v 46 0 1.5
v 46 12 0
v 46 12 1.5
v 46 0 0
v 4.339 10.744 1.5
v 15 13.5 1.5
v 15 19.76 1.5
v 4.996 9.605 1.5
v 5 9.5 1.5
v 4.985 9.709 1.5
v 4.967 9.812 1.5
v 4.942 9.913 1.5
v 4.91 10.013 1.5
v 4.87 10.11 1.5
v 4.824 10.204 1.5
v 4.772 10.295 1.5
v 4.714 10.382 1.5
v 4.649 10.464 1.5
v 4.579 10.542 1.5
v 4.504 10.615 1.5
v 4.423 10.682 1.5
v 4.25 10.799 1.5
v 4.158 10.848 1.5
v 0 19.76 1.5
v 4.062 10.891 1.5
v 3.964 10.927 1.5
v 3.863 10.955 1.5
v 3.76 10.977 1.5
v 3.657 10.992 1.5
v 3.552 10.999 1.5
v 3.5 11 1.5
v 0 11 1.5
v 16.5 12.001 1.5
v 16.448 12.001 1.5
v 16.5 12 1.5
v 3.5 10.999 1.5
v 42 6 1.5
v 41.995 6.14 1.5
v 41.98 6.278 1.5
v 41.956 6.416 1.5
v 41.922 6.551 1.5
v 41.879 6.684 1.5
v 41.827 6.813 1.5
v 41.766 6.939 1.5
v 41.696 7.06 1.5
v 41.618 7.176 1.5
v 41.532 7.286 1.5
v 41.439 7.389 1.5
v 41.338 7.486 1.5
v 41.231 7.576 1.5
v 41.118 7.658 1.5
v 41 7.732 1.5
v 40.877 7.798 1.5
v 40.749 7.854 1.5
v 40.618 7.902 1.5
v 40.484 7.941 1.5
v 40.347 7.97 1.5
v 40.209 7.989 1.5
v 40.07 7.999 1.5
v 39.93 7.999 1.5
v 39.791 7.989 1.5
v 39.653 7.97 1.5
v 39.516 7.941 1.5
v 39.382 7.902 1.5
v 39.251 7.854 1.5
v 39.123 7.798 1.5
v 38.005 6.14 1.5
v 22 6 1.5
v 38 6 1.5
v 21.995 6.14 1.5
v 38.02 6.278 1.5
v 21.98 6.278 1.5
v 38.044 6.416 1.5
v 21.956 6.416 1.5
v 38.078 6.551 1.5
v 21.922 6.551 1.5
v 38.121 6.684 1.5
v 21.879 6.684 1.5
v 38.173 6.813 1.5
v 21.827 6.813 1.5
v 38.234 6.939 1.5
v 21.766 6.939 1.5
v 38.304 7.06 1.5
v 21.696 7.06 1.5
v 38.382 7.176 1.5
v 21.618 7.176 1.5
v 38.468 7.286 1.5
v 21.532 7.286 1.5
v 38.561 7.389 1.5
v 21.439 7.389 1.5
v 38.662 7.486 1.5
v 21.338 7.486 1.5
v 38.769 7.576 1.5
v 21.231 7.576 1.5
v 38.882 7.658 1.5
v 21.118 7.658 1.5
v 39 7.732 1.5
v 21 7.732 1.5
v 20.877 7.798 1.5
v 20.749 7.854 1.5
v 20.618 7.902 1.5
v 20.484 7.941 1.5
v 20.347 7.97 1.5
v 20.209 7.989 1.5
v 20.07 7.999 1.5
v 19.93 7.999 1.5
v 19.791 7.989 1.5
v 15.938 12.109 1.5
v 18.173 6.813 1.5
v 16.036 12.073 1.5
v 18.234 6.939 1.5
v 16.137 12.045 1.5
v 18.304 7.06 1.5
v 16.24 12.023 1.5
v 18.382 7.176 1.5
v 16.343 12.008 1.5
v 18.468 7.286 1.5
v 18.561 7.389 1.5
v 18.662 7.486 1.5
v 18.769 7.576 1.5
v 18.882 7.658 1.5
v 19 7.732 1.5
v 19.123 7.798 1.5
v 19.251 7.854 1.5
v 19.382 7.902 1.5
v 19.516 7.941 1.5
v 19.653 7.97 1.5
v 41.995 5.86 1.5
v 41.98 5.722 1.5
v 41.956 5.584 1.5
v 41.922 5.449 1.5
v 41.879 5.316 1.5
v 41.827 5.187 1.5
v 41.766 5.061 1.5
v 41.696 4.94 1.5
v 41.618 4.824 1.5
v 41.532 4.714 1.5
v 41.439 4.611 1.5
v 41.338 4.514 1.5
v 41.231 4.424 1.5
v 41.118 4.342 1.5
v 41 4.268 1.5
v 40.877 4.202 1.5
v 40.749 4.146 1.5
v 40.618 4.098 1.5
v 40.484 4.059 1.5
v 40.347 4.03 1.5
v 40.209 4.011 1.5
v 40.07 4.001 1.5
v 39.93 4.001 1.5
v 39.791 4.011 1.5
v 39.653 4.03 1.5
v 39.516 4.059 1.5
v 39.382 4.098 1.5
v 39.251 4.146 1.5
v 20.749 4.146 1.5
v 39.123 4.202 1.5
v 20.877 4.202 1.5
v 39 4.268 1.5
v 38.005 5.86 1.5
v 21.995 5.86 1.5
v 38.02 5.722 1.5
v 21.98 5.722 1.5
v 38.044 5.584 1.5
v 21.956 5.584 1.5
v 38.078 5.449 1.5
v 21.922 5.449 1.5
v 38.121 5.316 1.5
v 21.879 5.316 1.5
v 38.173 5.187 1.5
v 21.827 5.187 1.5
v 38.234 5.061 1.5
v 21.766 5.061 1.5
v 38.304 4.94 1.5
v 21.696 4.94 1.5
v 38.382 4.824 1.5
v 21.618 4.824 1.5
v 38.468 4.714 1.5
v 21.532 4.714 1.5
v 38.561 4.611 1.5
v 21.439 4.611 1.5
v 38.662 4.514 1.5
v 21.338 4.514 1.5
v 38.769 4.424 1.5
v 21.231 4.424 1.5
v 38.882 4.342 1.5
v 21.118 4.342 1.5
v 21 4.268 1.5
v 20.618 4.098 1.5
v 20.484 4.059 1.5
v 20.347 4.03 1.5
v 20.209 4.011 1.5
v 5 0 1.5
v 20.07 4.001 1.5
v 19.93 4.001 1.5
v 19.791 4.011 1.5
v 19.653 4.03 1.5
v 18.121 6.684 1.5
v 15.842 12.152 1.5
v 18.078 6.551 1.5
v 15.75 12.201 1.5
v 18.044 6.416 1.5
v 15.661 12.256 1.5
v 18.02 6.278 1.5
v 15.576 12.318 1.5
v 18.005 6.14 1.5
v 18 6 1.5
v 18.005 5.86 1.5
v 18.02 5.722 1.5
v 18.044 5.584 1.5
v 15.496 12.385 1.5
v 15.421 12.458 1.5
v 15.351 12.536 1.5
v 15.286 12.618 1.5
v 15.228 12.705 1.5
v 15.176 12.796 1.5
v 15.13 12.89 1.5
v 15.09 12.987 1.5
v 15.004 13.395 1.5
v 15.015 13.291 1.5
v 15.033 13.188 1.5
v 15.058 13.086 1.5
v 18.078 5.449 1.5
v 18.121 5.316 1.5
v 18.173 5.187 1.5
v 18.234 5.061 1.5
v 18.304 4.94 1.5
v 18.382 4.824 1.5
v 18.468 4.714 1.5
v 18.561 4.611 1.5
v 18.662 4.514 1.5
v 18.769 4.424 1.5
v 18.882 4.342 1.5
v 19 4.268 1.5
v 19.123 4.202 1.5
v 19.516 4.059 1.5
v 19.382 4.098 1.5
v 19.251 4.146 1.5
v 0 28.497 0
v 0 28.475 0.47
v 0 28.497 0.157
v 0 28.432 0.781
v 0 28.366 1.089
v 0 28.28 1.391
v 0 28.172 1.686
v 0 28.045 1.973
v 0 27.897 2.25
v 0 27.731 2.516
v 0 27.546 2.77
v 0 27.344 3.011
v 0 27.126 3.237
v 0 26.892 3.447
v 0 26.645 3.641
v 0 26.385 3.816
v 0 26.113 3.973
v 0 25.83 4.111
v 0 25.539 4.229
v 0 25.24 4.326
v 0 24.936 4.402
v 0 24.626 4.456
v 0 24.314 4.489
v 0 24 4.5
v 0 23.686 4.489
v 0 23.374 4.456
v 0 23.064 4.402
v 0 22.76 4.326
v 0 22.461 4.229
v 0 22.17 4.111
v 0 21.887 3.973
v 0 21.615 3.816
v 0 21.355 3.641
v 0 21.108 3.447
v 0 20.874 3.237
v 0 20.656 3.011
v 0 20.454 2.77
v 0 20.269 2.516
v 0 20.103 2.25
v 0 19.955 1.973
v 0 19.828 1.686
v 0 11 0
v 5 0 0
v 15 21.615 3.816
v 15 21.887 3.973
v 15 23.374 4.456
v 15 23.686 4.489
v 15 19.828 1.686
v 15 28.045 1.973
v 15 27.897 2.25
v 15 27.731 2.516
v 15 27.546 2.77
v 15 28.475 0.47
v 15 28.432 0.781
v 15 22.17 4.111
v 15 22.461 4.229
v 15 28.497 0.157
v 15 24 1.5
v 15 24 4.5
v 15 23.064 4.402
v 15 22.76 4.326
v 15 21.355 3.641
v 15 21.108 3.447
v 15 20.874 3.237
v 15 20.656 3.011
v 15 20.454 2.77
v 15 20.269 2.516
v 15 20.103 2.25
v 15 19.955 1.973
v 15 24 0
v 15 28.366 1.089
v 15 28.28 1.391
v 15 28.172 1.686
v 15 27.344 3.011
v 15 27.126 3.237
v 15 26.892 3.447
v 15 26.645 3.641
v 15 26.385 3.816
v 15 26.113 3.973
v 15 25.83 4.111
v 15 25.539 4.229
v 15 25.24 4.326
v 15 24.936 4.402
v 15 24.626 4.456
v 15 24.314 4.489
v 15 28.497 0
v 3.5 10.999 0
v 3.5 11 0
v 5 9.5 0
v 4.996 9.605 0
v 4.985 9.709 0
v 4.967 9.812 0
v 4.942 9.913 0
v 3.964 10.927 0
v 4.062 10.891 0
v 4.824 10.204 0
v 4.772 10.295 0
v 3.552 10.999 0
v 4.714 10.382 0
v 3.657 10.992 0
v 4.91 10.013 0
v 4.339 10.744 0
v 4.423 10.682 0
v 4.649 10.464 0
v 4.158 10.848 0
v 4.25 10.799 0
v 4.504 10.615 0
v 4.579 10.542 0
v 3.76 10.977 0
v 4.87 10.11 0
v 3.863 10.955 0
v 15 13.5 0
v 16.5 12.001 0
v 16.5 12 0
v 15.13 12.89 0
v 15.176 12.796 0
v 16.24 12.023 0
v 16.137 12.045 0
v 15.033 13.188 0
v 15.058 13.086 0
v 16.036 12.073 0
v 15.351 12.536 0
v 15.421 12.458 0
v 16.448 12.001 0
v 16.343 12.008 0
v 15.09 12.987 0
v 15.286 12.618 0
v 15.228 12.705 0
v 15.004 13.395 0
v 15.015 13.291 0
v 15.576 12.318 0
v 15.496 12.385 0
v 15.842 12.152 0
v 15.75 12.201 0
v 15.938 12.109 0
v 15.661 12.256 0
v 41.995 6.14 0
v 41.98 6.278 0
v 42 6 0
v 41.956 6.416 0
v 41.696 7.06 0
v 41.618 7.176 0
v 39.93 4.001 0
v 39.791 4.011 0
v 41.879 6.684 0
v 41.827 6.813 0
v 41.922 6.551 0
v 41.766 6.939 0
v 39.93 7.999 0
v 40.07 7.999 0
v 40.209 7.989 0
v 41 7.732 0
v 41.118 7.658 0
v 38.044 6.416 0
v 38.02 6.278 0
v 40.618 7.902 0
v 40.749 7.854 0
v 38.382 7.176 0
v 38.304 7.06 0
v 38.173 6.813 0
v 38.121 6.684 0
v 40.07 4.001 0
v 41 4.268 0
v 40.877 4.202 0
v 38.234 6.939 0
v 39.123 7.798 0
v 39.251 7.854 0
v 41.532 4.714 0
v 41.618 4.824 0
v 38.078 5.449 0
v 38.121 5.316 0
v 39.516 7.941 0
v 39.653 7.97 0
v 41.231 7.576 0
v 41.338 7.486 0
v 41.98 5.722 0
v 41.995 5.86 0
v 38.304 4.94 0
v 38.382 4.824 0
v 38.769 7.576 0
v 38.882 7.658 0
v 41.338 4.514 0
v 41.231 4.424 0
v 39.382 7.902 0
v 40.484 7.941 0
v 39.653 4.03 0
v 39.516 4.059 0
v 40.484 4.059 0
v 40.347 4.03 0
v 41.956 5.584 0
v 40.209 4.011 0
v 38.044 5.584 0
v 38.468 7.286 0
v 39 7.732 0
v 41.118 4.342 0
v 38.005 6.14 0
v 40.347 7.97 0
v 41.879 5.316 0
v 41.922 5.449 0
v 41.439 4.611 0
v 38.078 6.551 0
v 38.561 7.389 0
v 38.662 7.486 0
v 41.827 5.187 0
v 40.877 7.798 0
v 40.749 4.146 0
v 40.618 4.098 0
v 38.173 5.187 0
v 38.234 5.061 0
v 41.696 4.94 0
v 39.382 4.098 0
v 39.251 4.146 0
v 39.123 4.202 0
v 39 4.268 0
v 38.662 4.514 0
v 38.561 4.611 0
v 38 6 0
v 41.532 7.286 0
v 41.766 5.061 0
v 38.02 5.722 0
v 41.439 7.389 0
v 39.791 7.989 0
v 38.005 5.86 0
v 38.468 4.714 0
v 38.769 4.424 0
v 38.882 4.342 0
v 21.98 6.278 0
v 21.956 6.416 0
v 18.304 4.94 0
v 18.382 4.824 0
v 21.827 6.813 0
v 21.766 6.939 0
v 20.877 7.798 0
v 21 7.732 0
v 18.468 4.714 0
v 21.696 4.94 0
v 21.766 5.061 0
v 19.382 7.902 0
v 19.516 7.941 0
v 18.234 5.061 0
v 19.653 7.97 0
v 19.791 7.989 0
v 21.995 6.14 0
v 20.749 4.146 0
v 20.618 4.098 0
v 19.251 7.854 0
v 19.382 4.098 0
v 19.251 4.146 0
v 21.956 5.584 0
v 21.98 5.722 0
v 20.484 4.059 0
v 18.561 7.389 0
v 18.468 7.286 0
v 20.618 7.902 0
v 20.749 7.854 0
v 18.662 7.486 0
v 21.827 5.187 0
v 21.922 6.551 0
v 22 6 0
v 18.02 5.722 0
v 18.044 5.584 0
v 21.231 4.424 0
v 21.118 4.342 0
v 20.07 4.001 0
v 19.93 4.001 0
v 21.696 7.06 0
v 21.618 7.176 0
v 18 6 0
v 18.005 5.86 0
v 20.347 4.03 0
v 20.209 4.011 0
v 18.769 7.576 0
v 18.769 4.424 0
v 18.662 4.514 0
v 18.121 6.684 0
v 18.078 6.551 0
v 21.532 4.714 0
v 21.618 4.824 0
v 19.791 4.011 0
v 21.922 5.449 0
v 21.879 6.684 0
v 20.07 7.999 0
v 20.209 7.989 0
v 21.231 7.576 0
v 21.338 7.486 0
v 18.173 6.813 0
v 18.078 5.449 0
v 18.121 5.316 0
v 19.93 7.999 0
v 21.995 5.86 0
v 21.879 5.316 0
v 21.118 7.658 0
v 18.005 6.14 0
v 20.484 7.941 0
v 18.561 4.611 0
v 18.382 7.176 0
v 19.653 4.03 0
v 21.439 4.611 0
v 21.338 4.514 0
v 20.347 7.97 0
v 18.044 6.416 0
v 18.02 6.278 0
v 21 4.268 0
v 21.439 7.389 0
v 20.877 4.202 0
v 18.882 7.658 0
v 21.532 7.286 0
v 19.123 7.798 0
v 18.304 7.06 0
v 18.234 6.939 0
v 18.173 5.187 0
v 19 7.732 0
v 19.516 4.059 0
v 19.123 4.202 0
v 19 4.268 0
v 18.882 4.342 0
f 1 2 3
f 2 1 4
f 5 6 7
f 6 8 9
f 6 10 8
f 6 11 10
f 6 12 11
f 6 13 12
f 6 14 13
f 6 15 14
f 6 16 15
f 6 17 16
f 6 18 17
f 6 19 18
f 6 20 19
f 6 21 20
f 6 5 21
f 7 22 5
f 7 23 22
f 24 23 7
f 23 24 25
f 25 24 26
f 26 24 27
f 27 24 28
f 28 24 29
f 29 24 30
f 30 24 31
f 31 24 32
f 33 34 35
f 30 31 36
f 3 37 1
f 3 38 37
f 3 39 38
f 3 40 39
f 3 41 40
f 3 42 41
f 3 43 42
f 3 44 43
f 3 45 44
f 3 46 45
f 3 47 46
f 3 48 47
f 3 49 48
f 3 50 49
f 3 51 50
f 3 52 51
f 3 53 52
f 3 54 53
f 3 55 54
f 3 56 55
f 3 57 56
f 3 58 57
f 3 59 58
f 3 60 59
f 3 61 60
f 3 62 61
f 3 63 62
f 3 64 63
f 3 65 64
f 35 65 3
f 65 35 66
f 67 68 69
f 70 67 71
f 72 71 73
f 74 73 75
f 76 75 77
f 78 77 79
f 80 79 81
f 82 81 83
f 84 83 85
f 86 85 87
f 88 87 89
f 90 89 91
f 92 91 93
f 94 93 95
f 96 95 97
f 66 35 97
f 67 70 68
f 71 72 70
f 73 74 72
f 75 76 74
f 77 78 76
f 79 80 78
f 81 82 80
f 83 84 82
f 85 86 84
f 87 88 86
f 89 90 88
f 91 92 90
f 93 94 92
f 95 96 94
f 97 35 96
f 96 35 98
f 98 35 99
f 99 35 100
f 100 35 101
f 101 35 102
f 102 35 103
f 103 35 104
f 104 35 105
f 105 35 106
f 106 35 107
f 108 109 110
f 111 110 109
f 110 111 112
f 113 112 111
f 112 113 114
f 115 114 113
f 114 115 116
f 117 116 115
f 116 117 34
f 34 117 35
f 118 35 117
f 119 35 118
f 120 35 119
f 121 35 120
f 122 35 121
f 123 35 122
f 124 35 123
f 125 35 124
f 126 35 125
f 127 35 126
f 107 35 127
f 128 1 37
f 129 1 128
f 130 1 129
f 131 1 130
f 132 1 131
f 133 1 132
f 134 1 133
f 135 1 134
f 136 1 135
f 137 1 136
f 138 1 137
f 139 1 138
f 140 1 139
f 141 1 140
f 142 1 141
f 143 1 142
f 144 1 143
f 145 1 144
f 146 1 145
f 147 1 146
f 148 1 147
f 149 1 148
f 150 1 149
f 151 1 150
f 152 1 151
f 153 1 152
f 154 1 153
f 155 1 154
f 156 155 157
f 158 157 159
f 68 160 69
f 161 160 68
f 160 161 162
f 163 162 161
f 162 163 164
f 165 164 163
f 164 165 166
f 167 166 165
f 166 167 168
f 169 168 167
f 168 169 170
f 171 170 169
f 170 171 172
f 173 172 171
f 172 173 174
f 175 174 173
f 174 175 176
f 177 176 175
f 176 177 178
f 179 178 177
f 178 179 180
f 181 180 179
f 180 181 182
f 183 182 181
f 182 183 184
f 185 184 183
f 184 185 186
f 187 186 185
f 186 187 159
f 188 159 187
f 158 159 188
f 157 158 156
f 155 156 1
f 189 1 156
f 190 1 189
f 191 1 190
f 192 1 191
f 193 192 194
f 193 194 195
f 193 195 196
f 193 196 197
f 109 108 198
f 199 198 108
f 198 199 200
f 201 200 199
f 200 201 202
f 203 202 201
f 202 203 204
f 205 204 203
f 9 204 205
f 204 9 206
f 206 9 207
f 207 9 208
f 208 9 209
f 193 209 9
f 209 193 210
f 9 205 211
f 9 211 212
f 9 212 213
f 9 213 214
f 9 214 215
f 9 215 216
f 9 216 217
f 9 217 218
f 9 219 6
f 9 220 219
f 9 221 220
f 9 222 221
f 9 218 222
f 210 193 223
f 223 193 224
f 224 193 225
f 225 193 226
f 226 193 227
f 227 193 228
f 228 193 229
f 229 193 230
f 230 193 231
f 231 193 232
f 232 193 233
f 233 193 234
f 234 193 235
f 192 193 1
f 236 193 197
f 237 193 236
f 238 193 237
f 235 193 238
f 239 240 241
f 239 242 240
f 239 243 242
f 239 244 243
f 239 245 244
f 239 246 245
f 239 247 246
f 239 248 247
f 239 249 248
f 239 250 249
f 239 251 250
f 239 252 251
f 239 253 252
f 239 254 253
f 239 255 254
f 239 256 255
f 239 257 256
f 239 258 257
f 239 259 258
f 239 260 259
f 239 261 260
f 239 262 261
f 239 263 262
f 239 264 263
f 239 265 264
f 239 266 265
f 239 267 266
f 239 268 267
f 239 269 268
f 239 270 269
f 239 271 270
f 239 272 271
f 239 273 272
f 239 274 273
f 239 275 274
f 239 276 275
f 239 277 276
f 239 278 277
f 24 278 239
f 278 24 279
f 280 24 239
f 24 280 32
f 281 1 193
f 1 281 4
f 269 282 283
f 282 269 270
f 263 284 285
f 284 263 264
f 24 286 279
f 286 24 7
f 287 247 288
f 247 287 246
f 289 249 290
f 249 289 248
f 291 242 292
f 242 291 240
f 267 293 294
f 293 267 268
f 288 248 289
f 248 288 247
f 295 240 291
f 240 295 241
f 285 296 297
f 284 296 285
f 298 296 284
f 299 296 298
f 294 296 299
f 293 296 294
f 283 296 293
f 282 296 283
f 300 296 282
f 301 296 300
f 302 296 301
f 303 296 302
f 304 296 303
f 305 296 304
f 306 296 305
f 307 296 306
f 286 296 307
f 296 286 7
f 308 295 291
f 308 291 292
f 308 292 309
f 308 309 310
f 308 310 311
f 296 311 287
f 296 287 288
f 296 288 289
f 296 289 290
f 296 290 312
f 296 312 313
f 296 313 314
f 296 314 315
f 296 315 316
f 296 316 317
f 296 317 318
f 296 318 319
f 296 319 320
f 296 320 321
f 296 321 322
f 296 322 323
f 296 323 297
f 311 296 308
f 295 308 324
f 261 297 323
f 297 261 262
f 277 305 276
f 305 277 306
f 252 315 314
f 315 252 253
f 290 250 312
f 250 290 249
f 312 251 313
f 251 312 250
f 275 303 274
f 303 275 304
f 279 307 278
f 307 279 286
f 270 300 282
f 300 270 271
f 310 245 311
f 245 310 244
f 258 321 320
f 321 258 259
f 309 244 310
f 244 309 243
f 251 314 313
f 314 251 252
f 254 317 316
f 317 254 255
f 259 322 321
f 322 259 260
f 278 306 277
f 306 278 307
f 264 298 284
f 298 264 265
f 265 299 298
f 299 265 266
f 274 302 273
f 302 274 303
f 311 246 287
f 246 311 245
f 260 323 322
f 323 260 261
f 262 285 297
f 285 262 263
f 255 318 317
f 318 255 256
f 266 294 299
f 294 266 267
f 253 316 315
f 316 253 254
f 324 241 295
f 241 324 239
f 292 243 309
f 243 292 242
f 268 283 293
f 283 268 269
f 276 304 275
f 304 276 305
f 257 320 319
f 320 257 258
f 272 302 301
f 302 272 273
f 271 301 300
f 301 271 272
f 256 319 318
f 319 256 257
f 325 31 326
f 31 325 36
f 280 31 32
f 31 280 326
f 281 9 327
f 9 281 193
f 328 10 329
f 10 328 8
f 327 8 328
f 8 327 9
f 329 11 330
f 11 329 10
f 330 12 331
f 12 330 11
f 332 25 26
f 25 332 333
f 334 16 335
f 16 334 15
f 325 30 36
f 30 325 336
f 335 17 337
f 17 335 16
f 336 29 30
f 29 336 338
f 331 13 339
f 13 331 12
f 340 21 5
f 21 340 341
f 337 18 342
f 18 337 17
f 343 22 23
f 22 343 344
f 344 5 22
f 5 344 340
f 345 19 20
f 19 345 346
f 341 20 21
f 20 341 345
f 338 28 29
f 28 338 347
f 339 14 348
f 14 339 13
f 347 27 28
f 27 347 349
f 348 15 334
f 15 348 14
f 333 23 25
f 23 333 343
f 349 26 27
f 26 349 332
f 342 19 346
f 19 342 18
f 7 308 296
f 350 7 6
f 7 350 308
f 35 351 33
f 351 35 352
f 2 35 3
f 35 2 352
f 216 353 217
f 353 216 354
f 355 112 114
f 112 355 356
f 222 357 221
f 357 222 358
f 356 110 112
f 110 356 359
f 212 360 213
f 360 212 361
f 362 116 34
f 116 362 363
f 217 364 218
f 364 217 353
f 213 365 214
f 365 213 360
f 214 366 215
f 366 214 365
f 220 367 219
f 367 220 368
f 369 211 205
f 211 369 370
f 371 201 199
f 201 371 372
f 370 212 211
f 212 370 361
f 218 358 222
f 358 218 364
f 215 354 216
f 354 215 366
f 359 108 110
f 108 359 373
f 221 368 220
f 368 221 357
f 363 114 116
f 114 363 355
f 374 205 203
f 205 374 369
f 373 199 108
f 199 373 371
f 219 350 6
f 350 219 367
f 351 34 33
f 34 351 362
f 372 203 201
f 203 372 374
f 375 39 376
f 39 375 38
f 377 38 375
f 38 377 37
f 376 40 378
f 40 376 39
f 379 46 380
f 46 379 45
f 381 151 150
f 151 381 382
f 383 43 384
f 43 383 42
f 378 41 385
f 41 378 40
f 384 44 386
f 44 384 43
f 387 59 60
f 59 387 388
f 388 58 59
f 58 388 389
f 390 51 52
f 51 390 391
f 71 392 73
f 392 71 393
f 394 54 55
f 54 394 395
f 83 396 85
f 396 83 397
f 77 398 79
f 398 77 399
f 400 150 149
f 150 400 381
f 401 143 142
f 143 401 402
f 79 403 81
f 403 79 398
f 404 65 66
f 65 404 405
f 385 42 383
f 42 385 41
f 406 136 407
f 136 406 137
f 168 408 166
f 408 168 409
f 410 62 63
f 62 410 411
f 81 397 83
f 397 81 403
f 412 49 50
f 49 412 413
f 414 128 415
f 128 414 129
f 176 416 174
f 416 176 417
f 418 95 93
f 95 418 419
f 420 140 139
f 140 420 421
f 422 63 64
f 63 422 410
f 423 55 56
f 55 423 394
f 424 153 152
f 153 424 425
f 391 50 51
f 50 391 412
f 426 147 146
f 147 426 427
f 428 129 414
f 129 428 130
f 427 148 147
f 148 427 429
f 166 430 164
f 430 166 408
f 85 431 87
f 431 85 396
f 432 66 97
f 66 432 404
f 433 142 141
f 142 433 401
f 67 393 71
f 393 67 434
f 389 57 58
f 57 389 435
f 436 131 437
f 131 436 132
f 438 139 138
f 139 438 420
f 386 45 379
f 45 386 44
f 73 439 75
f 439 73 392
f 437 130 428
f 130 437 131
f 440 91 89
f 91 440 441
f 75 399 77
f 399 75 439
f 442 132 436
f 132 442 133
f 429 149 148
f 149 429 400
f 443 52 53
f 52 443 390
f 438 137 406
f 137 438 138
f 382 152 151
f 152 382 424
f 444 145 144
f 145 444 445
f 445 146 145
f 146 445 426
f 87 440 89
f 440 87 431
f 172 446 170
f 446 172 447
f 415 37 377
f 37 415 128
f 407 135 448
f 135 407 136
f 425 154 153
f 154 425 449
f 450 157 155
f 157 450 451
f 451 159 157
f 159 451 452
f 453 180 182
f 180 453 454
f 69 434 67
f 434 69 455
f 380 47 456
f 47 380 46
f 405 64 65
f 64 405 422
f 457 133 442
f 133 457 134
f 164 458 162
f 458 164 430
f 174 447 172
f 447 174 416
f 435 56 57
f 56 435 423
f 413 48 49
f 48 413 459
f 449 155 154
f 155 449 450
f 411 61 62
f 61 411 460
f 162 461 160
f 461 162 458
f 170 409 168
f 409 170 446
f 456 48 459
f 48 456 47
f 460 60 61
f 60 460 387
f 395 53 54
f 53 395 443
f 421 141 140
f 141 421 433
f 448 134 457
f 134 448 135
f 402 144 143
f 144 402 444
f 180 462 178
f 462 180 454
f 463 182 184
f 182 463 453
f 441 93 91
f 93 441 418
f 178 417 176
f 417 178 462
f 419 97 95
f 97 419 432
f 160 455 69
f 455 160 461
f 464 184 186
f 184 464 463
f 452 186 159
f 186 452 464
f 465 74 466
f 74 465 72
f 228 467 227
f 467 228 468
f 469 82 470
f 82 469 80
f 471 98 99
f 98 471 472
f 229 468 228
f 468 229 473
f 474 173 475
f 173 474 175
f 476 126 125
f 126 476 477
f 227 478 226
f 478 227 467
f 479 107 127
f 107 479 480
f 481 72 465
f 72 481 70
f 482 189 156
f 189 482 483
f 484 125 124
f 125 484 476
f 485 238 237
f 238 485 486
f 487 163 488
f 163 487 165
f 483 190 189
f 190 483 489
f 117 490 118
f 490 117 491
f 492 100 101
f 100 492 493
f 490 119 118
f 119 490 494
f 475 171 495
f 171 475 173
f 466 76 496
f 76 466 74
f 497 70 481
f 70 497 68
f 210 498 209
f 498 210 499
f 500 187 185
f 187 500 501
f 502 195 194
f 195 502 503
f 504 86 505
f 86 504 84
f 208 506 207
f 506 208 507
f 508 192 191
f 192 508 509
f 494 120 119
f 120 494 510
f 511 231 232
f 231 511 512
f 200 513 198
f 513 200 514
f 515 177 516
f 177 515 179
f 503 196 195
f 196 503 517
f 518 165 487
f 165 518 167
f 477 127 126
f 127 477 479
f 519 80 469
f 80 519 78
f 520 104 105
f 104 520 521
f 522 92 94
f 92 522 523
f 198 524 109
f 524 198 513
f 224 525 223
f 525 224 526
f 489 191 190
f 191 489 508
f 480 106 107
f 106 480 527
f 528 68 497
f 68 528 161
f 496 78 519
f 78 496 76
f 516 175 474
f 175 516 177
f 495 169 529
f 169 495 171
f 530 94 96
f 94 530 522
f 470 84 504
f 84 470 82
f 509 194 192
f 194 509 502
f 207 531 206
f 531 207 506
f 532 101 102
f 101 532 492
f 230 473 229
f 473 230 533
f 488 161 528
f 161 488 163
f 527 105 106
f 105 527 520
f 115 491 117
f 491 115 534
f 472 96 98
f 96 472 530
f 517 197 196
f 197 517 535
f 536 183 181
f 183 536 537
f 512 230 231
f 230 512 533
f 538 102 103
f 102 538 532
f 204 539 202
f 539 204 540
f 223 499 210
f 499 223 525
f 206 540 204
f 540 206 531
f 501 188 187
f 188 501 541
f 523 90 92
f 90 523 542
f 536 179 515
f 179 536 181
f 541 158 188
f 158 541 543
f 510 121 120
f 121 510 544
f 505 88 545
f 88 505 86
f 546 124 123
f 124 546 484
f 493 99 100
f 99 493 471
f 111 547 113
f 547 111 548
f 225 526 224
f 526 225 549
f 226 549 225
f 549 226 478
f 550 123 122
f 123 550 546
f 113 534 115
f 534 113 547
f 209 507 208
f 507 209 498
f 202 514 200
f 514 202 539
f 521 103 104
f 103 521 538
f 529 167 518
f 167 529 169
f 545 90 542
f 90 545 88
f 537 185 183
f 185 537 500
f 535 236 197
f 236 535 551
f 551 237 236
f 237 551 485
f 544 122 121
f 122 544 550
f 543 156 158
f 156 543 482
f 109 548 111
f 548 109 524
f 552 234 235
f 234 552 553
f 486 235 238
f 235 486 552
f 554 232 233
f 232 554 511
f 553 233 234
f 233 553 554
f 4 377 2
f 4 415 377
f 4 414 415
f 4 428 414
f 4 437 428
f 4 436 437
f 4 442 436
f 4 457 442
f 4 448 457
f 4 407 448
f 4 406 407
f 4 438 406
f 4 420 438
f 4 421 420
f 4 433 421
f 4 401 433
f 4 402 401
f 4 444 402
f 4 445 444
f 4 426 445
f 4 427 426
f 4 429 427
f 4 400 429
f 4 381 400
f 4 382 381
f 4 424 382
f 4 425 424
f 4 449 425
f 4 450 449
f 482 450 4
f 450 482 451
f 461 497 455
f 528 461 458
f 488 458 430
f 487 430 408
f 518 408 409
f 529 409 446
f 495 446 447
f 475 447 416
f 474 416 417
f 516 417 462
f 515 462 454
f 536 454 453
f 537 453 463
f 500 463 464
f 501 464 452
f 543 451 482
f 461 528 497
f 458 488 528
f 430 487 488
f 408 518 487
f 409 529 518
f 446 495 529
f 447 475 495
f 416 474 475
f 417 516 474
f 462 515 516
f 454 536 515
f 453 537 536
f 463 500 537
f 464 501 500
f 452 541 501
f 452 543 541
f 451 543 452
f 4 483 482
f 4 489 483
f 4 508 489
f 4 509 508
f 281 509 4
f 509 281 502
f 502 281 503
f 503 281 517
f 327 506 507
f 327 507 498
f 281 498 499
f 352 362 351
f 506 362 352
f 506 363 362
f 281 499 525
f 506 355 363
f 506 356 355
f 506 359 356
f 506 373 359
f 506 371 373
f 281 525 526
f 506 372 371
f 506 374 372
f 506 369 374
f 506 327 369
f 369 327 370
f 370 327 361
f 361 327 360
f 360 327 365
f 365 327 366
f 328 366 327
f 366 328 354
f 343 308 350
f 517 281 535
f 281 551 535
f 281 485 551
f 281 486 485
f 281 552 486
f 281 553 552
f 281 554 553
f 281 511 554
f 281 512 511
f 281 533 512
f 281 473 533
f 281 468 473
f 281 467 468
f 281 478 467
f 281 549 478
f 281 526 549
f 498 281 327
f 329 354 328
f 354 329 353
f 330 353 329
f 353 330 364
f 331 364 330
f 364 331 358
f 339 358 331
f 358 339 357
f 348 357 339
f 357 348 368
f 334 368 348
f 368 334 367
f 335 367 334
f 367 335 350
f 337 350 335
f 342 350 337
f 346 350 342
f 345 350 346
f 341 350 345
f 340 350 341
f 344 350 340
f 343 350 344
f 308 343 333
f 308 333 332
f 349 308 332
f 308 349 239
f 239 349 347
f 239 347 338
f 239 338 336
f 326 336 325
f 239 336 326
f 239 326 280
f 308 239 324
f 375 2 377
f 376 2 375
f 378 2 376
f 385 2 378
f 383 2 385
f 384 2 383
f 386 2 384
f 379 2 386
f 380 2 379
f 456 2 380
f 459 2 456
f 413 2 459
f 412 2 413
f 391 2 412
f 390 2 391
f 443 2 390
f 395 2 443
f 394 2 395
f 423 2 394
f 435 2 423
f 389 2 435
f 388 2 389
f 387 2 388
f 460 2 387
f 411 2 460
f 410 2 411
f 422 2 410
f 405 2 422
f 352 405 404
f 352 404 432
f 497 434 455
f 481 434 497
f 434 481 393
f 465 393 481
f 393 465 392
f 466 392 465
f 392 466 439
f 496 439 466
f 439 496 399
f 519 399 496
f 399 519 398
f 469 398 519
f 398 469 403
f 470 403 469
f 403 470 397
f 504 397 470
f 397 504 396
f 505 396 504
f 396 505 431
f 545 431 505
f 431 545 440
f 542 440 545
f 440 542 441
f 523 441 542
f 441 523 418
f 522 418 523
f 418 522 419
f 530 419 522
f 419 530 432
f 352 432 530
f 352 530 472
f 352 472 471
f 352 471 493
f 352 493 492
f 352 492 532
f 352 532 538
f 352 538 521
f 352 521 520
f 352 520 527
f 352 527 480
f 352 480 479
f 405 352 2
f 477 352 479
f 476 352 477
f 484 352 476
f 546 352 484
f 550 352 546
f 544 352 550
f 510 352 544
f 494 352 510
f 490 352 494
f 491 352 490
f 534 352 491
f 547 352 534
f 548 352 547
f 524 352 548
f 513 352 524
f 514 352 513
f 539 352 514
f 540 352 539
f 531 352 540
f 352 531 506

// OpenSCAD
$fn=90;

module hinge() {

    difference() {
        
        union() {
            cube( [ 46.0, 24, 3.0 ] );
            translate( [ 0, 24, 3/2 ] ) {
                rotate( [ 0, 90, 0 ] ) {
                    cylinder( d = 9, h = 15 );
                }
            }
        }
        
        union() {
            cube( [ 5.0-1.5, 11.0, 3.0 ] );
            cube( [ 5.0, 11.0-1.5, 3.0 ] );
            translate( [ 5.0-1.5, 11.0-1.5, 0 ] ) {
                cylinder( r = 1.5, h = 3.0 );
            }
        }

        translate( [ 15.0, 12.0, 0 ] ) {
            union() {
                translate( [ 0, 1.5, 0 ] ) {
                    cube( [ 31.0, 12.0-1.5, 3 ] );
                }
                translate( [ 1.5, 0, 0 ] ) {
                    cube( [ 31.0-1.5, 12.0, 3 ] );
                }
                translate( [ 1.5, 1.5, 0 ] ) {
                    cylinder( r = 1.5, h = 3.0 );
                }
            }
        }
        
        translate( [ 46.0 - 6.0, 6.0, 0 ] ) {
            cylinder( d = 4.0, h = 3 );
        }
        translate( [ 46.0 - 26.0, 6.0, 0 ] ) {
            cylinder( d = 4.0, h = 3 );
        }
        
    *   translate( [ 0, 24, 1.5 ] ) { 
            rotate( [ 0, 90, 0 ] ) {
                cylinder( d = 3, h = 26 );
            }
        }



    }
}

*projection() {
    translate( [ 0, 0, -1.5 ] ) {
        difference() {
            hinge();
            translate( [ 0, 24, 3/2 ] ) {
                rotate( [ 0, 90, 0 ] ) {
                    cylinder( d = 9, h = 15 );
                }
            }
        }
    }
}

intersection() {
    translate( [ 0, 0, -1.5 ] ) hinge();
    translate( [ -50, -50, 0 ] ) cube( [ 100, 100, 100 ] );
}
